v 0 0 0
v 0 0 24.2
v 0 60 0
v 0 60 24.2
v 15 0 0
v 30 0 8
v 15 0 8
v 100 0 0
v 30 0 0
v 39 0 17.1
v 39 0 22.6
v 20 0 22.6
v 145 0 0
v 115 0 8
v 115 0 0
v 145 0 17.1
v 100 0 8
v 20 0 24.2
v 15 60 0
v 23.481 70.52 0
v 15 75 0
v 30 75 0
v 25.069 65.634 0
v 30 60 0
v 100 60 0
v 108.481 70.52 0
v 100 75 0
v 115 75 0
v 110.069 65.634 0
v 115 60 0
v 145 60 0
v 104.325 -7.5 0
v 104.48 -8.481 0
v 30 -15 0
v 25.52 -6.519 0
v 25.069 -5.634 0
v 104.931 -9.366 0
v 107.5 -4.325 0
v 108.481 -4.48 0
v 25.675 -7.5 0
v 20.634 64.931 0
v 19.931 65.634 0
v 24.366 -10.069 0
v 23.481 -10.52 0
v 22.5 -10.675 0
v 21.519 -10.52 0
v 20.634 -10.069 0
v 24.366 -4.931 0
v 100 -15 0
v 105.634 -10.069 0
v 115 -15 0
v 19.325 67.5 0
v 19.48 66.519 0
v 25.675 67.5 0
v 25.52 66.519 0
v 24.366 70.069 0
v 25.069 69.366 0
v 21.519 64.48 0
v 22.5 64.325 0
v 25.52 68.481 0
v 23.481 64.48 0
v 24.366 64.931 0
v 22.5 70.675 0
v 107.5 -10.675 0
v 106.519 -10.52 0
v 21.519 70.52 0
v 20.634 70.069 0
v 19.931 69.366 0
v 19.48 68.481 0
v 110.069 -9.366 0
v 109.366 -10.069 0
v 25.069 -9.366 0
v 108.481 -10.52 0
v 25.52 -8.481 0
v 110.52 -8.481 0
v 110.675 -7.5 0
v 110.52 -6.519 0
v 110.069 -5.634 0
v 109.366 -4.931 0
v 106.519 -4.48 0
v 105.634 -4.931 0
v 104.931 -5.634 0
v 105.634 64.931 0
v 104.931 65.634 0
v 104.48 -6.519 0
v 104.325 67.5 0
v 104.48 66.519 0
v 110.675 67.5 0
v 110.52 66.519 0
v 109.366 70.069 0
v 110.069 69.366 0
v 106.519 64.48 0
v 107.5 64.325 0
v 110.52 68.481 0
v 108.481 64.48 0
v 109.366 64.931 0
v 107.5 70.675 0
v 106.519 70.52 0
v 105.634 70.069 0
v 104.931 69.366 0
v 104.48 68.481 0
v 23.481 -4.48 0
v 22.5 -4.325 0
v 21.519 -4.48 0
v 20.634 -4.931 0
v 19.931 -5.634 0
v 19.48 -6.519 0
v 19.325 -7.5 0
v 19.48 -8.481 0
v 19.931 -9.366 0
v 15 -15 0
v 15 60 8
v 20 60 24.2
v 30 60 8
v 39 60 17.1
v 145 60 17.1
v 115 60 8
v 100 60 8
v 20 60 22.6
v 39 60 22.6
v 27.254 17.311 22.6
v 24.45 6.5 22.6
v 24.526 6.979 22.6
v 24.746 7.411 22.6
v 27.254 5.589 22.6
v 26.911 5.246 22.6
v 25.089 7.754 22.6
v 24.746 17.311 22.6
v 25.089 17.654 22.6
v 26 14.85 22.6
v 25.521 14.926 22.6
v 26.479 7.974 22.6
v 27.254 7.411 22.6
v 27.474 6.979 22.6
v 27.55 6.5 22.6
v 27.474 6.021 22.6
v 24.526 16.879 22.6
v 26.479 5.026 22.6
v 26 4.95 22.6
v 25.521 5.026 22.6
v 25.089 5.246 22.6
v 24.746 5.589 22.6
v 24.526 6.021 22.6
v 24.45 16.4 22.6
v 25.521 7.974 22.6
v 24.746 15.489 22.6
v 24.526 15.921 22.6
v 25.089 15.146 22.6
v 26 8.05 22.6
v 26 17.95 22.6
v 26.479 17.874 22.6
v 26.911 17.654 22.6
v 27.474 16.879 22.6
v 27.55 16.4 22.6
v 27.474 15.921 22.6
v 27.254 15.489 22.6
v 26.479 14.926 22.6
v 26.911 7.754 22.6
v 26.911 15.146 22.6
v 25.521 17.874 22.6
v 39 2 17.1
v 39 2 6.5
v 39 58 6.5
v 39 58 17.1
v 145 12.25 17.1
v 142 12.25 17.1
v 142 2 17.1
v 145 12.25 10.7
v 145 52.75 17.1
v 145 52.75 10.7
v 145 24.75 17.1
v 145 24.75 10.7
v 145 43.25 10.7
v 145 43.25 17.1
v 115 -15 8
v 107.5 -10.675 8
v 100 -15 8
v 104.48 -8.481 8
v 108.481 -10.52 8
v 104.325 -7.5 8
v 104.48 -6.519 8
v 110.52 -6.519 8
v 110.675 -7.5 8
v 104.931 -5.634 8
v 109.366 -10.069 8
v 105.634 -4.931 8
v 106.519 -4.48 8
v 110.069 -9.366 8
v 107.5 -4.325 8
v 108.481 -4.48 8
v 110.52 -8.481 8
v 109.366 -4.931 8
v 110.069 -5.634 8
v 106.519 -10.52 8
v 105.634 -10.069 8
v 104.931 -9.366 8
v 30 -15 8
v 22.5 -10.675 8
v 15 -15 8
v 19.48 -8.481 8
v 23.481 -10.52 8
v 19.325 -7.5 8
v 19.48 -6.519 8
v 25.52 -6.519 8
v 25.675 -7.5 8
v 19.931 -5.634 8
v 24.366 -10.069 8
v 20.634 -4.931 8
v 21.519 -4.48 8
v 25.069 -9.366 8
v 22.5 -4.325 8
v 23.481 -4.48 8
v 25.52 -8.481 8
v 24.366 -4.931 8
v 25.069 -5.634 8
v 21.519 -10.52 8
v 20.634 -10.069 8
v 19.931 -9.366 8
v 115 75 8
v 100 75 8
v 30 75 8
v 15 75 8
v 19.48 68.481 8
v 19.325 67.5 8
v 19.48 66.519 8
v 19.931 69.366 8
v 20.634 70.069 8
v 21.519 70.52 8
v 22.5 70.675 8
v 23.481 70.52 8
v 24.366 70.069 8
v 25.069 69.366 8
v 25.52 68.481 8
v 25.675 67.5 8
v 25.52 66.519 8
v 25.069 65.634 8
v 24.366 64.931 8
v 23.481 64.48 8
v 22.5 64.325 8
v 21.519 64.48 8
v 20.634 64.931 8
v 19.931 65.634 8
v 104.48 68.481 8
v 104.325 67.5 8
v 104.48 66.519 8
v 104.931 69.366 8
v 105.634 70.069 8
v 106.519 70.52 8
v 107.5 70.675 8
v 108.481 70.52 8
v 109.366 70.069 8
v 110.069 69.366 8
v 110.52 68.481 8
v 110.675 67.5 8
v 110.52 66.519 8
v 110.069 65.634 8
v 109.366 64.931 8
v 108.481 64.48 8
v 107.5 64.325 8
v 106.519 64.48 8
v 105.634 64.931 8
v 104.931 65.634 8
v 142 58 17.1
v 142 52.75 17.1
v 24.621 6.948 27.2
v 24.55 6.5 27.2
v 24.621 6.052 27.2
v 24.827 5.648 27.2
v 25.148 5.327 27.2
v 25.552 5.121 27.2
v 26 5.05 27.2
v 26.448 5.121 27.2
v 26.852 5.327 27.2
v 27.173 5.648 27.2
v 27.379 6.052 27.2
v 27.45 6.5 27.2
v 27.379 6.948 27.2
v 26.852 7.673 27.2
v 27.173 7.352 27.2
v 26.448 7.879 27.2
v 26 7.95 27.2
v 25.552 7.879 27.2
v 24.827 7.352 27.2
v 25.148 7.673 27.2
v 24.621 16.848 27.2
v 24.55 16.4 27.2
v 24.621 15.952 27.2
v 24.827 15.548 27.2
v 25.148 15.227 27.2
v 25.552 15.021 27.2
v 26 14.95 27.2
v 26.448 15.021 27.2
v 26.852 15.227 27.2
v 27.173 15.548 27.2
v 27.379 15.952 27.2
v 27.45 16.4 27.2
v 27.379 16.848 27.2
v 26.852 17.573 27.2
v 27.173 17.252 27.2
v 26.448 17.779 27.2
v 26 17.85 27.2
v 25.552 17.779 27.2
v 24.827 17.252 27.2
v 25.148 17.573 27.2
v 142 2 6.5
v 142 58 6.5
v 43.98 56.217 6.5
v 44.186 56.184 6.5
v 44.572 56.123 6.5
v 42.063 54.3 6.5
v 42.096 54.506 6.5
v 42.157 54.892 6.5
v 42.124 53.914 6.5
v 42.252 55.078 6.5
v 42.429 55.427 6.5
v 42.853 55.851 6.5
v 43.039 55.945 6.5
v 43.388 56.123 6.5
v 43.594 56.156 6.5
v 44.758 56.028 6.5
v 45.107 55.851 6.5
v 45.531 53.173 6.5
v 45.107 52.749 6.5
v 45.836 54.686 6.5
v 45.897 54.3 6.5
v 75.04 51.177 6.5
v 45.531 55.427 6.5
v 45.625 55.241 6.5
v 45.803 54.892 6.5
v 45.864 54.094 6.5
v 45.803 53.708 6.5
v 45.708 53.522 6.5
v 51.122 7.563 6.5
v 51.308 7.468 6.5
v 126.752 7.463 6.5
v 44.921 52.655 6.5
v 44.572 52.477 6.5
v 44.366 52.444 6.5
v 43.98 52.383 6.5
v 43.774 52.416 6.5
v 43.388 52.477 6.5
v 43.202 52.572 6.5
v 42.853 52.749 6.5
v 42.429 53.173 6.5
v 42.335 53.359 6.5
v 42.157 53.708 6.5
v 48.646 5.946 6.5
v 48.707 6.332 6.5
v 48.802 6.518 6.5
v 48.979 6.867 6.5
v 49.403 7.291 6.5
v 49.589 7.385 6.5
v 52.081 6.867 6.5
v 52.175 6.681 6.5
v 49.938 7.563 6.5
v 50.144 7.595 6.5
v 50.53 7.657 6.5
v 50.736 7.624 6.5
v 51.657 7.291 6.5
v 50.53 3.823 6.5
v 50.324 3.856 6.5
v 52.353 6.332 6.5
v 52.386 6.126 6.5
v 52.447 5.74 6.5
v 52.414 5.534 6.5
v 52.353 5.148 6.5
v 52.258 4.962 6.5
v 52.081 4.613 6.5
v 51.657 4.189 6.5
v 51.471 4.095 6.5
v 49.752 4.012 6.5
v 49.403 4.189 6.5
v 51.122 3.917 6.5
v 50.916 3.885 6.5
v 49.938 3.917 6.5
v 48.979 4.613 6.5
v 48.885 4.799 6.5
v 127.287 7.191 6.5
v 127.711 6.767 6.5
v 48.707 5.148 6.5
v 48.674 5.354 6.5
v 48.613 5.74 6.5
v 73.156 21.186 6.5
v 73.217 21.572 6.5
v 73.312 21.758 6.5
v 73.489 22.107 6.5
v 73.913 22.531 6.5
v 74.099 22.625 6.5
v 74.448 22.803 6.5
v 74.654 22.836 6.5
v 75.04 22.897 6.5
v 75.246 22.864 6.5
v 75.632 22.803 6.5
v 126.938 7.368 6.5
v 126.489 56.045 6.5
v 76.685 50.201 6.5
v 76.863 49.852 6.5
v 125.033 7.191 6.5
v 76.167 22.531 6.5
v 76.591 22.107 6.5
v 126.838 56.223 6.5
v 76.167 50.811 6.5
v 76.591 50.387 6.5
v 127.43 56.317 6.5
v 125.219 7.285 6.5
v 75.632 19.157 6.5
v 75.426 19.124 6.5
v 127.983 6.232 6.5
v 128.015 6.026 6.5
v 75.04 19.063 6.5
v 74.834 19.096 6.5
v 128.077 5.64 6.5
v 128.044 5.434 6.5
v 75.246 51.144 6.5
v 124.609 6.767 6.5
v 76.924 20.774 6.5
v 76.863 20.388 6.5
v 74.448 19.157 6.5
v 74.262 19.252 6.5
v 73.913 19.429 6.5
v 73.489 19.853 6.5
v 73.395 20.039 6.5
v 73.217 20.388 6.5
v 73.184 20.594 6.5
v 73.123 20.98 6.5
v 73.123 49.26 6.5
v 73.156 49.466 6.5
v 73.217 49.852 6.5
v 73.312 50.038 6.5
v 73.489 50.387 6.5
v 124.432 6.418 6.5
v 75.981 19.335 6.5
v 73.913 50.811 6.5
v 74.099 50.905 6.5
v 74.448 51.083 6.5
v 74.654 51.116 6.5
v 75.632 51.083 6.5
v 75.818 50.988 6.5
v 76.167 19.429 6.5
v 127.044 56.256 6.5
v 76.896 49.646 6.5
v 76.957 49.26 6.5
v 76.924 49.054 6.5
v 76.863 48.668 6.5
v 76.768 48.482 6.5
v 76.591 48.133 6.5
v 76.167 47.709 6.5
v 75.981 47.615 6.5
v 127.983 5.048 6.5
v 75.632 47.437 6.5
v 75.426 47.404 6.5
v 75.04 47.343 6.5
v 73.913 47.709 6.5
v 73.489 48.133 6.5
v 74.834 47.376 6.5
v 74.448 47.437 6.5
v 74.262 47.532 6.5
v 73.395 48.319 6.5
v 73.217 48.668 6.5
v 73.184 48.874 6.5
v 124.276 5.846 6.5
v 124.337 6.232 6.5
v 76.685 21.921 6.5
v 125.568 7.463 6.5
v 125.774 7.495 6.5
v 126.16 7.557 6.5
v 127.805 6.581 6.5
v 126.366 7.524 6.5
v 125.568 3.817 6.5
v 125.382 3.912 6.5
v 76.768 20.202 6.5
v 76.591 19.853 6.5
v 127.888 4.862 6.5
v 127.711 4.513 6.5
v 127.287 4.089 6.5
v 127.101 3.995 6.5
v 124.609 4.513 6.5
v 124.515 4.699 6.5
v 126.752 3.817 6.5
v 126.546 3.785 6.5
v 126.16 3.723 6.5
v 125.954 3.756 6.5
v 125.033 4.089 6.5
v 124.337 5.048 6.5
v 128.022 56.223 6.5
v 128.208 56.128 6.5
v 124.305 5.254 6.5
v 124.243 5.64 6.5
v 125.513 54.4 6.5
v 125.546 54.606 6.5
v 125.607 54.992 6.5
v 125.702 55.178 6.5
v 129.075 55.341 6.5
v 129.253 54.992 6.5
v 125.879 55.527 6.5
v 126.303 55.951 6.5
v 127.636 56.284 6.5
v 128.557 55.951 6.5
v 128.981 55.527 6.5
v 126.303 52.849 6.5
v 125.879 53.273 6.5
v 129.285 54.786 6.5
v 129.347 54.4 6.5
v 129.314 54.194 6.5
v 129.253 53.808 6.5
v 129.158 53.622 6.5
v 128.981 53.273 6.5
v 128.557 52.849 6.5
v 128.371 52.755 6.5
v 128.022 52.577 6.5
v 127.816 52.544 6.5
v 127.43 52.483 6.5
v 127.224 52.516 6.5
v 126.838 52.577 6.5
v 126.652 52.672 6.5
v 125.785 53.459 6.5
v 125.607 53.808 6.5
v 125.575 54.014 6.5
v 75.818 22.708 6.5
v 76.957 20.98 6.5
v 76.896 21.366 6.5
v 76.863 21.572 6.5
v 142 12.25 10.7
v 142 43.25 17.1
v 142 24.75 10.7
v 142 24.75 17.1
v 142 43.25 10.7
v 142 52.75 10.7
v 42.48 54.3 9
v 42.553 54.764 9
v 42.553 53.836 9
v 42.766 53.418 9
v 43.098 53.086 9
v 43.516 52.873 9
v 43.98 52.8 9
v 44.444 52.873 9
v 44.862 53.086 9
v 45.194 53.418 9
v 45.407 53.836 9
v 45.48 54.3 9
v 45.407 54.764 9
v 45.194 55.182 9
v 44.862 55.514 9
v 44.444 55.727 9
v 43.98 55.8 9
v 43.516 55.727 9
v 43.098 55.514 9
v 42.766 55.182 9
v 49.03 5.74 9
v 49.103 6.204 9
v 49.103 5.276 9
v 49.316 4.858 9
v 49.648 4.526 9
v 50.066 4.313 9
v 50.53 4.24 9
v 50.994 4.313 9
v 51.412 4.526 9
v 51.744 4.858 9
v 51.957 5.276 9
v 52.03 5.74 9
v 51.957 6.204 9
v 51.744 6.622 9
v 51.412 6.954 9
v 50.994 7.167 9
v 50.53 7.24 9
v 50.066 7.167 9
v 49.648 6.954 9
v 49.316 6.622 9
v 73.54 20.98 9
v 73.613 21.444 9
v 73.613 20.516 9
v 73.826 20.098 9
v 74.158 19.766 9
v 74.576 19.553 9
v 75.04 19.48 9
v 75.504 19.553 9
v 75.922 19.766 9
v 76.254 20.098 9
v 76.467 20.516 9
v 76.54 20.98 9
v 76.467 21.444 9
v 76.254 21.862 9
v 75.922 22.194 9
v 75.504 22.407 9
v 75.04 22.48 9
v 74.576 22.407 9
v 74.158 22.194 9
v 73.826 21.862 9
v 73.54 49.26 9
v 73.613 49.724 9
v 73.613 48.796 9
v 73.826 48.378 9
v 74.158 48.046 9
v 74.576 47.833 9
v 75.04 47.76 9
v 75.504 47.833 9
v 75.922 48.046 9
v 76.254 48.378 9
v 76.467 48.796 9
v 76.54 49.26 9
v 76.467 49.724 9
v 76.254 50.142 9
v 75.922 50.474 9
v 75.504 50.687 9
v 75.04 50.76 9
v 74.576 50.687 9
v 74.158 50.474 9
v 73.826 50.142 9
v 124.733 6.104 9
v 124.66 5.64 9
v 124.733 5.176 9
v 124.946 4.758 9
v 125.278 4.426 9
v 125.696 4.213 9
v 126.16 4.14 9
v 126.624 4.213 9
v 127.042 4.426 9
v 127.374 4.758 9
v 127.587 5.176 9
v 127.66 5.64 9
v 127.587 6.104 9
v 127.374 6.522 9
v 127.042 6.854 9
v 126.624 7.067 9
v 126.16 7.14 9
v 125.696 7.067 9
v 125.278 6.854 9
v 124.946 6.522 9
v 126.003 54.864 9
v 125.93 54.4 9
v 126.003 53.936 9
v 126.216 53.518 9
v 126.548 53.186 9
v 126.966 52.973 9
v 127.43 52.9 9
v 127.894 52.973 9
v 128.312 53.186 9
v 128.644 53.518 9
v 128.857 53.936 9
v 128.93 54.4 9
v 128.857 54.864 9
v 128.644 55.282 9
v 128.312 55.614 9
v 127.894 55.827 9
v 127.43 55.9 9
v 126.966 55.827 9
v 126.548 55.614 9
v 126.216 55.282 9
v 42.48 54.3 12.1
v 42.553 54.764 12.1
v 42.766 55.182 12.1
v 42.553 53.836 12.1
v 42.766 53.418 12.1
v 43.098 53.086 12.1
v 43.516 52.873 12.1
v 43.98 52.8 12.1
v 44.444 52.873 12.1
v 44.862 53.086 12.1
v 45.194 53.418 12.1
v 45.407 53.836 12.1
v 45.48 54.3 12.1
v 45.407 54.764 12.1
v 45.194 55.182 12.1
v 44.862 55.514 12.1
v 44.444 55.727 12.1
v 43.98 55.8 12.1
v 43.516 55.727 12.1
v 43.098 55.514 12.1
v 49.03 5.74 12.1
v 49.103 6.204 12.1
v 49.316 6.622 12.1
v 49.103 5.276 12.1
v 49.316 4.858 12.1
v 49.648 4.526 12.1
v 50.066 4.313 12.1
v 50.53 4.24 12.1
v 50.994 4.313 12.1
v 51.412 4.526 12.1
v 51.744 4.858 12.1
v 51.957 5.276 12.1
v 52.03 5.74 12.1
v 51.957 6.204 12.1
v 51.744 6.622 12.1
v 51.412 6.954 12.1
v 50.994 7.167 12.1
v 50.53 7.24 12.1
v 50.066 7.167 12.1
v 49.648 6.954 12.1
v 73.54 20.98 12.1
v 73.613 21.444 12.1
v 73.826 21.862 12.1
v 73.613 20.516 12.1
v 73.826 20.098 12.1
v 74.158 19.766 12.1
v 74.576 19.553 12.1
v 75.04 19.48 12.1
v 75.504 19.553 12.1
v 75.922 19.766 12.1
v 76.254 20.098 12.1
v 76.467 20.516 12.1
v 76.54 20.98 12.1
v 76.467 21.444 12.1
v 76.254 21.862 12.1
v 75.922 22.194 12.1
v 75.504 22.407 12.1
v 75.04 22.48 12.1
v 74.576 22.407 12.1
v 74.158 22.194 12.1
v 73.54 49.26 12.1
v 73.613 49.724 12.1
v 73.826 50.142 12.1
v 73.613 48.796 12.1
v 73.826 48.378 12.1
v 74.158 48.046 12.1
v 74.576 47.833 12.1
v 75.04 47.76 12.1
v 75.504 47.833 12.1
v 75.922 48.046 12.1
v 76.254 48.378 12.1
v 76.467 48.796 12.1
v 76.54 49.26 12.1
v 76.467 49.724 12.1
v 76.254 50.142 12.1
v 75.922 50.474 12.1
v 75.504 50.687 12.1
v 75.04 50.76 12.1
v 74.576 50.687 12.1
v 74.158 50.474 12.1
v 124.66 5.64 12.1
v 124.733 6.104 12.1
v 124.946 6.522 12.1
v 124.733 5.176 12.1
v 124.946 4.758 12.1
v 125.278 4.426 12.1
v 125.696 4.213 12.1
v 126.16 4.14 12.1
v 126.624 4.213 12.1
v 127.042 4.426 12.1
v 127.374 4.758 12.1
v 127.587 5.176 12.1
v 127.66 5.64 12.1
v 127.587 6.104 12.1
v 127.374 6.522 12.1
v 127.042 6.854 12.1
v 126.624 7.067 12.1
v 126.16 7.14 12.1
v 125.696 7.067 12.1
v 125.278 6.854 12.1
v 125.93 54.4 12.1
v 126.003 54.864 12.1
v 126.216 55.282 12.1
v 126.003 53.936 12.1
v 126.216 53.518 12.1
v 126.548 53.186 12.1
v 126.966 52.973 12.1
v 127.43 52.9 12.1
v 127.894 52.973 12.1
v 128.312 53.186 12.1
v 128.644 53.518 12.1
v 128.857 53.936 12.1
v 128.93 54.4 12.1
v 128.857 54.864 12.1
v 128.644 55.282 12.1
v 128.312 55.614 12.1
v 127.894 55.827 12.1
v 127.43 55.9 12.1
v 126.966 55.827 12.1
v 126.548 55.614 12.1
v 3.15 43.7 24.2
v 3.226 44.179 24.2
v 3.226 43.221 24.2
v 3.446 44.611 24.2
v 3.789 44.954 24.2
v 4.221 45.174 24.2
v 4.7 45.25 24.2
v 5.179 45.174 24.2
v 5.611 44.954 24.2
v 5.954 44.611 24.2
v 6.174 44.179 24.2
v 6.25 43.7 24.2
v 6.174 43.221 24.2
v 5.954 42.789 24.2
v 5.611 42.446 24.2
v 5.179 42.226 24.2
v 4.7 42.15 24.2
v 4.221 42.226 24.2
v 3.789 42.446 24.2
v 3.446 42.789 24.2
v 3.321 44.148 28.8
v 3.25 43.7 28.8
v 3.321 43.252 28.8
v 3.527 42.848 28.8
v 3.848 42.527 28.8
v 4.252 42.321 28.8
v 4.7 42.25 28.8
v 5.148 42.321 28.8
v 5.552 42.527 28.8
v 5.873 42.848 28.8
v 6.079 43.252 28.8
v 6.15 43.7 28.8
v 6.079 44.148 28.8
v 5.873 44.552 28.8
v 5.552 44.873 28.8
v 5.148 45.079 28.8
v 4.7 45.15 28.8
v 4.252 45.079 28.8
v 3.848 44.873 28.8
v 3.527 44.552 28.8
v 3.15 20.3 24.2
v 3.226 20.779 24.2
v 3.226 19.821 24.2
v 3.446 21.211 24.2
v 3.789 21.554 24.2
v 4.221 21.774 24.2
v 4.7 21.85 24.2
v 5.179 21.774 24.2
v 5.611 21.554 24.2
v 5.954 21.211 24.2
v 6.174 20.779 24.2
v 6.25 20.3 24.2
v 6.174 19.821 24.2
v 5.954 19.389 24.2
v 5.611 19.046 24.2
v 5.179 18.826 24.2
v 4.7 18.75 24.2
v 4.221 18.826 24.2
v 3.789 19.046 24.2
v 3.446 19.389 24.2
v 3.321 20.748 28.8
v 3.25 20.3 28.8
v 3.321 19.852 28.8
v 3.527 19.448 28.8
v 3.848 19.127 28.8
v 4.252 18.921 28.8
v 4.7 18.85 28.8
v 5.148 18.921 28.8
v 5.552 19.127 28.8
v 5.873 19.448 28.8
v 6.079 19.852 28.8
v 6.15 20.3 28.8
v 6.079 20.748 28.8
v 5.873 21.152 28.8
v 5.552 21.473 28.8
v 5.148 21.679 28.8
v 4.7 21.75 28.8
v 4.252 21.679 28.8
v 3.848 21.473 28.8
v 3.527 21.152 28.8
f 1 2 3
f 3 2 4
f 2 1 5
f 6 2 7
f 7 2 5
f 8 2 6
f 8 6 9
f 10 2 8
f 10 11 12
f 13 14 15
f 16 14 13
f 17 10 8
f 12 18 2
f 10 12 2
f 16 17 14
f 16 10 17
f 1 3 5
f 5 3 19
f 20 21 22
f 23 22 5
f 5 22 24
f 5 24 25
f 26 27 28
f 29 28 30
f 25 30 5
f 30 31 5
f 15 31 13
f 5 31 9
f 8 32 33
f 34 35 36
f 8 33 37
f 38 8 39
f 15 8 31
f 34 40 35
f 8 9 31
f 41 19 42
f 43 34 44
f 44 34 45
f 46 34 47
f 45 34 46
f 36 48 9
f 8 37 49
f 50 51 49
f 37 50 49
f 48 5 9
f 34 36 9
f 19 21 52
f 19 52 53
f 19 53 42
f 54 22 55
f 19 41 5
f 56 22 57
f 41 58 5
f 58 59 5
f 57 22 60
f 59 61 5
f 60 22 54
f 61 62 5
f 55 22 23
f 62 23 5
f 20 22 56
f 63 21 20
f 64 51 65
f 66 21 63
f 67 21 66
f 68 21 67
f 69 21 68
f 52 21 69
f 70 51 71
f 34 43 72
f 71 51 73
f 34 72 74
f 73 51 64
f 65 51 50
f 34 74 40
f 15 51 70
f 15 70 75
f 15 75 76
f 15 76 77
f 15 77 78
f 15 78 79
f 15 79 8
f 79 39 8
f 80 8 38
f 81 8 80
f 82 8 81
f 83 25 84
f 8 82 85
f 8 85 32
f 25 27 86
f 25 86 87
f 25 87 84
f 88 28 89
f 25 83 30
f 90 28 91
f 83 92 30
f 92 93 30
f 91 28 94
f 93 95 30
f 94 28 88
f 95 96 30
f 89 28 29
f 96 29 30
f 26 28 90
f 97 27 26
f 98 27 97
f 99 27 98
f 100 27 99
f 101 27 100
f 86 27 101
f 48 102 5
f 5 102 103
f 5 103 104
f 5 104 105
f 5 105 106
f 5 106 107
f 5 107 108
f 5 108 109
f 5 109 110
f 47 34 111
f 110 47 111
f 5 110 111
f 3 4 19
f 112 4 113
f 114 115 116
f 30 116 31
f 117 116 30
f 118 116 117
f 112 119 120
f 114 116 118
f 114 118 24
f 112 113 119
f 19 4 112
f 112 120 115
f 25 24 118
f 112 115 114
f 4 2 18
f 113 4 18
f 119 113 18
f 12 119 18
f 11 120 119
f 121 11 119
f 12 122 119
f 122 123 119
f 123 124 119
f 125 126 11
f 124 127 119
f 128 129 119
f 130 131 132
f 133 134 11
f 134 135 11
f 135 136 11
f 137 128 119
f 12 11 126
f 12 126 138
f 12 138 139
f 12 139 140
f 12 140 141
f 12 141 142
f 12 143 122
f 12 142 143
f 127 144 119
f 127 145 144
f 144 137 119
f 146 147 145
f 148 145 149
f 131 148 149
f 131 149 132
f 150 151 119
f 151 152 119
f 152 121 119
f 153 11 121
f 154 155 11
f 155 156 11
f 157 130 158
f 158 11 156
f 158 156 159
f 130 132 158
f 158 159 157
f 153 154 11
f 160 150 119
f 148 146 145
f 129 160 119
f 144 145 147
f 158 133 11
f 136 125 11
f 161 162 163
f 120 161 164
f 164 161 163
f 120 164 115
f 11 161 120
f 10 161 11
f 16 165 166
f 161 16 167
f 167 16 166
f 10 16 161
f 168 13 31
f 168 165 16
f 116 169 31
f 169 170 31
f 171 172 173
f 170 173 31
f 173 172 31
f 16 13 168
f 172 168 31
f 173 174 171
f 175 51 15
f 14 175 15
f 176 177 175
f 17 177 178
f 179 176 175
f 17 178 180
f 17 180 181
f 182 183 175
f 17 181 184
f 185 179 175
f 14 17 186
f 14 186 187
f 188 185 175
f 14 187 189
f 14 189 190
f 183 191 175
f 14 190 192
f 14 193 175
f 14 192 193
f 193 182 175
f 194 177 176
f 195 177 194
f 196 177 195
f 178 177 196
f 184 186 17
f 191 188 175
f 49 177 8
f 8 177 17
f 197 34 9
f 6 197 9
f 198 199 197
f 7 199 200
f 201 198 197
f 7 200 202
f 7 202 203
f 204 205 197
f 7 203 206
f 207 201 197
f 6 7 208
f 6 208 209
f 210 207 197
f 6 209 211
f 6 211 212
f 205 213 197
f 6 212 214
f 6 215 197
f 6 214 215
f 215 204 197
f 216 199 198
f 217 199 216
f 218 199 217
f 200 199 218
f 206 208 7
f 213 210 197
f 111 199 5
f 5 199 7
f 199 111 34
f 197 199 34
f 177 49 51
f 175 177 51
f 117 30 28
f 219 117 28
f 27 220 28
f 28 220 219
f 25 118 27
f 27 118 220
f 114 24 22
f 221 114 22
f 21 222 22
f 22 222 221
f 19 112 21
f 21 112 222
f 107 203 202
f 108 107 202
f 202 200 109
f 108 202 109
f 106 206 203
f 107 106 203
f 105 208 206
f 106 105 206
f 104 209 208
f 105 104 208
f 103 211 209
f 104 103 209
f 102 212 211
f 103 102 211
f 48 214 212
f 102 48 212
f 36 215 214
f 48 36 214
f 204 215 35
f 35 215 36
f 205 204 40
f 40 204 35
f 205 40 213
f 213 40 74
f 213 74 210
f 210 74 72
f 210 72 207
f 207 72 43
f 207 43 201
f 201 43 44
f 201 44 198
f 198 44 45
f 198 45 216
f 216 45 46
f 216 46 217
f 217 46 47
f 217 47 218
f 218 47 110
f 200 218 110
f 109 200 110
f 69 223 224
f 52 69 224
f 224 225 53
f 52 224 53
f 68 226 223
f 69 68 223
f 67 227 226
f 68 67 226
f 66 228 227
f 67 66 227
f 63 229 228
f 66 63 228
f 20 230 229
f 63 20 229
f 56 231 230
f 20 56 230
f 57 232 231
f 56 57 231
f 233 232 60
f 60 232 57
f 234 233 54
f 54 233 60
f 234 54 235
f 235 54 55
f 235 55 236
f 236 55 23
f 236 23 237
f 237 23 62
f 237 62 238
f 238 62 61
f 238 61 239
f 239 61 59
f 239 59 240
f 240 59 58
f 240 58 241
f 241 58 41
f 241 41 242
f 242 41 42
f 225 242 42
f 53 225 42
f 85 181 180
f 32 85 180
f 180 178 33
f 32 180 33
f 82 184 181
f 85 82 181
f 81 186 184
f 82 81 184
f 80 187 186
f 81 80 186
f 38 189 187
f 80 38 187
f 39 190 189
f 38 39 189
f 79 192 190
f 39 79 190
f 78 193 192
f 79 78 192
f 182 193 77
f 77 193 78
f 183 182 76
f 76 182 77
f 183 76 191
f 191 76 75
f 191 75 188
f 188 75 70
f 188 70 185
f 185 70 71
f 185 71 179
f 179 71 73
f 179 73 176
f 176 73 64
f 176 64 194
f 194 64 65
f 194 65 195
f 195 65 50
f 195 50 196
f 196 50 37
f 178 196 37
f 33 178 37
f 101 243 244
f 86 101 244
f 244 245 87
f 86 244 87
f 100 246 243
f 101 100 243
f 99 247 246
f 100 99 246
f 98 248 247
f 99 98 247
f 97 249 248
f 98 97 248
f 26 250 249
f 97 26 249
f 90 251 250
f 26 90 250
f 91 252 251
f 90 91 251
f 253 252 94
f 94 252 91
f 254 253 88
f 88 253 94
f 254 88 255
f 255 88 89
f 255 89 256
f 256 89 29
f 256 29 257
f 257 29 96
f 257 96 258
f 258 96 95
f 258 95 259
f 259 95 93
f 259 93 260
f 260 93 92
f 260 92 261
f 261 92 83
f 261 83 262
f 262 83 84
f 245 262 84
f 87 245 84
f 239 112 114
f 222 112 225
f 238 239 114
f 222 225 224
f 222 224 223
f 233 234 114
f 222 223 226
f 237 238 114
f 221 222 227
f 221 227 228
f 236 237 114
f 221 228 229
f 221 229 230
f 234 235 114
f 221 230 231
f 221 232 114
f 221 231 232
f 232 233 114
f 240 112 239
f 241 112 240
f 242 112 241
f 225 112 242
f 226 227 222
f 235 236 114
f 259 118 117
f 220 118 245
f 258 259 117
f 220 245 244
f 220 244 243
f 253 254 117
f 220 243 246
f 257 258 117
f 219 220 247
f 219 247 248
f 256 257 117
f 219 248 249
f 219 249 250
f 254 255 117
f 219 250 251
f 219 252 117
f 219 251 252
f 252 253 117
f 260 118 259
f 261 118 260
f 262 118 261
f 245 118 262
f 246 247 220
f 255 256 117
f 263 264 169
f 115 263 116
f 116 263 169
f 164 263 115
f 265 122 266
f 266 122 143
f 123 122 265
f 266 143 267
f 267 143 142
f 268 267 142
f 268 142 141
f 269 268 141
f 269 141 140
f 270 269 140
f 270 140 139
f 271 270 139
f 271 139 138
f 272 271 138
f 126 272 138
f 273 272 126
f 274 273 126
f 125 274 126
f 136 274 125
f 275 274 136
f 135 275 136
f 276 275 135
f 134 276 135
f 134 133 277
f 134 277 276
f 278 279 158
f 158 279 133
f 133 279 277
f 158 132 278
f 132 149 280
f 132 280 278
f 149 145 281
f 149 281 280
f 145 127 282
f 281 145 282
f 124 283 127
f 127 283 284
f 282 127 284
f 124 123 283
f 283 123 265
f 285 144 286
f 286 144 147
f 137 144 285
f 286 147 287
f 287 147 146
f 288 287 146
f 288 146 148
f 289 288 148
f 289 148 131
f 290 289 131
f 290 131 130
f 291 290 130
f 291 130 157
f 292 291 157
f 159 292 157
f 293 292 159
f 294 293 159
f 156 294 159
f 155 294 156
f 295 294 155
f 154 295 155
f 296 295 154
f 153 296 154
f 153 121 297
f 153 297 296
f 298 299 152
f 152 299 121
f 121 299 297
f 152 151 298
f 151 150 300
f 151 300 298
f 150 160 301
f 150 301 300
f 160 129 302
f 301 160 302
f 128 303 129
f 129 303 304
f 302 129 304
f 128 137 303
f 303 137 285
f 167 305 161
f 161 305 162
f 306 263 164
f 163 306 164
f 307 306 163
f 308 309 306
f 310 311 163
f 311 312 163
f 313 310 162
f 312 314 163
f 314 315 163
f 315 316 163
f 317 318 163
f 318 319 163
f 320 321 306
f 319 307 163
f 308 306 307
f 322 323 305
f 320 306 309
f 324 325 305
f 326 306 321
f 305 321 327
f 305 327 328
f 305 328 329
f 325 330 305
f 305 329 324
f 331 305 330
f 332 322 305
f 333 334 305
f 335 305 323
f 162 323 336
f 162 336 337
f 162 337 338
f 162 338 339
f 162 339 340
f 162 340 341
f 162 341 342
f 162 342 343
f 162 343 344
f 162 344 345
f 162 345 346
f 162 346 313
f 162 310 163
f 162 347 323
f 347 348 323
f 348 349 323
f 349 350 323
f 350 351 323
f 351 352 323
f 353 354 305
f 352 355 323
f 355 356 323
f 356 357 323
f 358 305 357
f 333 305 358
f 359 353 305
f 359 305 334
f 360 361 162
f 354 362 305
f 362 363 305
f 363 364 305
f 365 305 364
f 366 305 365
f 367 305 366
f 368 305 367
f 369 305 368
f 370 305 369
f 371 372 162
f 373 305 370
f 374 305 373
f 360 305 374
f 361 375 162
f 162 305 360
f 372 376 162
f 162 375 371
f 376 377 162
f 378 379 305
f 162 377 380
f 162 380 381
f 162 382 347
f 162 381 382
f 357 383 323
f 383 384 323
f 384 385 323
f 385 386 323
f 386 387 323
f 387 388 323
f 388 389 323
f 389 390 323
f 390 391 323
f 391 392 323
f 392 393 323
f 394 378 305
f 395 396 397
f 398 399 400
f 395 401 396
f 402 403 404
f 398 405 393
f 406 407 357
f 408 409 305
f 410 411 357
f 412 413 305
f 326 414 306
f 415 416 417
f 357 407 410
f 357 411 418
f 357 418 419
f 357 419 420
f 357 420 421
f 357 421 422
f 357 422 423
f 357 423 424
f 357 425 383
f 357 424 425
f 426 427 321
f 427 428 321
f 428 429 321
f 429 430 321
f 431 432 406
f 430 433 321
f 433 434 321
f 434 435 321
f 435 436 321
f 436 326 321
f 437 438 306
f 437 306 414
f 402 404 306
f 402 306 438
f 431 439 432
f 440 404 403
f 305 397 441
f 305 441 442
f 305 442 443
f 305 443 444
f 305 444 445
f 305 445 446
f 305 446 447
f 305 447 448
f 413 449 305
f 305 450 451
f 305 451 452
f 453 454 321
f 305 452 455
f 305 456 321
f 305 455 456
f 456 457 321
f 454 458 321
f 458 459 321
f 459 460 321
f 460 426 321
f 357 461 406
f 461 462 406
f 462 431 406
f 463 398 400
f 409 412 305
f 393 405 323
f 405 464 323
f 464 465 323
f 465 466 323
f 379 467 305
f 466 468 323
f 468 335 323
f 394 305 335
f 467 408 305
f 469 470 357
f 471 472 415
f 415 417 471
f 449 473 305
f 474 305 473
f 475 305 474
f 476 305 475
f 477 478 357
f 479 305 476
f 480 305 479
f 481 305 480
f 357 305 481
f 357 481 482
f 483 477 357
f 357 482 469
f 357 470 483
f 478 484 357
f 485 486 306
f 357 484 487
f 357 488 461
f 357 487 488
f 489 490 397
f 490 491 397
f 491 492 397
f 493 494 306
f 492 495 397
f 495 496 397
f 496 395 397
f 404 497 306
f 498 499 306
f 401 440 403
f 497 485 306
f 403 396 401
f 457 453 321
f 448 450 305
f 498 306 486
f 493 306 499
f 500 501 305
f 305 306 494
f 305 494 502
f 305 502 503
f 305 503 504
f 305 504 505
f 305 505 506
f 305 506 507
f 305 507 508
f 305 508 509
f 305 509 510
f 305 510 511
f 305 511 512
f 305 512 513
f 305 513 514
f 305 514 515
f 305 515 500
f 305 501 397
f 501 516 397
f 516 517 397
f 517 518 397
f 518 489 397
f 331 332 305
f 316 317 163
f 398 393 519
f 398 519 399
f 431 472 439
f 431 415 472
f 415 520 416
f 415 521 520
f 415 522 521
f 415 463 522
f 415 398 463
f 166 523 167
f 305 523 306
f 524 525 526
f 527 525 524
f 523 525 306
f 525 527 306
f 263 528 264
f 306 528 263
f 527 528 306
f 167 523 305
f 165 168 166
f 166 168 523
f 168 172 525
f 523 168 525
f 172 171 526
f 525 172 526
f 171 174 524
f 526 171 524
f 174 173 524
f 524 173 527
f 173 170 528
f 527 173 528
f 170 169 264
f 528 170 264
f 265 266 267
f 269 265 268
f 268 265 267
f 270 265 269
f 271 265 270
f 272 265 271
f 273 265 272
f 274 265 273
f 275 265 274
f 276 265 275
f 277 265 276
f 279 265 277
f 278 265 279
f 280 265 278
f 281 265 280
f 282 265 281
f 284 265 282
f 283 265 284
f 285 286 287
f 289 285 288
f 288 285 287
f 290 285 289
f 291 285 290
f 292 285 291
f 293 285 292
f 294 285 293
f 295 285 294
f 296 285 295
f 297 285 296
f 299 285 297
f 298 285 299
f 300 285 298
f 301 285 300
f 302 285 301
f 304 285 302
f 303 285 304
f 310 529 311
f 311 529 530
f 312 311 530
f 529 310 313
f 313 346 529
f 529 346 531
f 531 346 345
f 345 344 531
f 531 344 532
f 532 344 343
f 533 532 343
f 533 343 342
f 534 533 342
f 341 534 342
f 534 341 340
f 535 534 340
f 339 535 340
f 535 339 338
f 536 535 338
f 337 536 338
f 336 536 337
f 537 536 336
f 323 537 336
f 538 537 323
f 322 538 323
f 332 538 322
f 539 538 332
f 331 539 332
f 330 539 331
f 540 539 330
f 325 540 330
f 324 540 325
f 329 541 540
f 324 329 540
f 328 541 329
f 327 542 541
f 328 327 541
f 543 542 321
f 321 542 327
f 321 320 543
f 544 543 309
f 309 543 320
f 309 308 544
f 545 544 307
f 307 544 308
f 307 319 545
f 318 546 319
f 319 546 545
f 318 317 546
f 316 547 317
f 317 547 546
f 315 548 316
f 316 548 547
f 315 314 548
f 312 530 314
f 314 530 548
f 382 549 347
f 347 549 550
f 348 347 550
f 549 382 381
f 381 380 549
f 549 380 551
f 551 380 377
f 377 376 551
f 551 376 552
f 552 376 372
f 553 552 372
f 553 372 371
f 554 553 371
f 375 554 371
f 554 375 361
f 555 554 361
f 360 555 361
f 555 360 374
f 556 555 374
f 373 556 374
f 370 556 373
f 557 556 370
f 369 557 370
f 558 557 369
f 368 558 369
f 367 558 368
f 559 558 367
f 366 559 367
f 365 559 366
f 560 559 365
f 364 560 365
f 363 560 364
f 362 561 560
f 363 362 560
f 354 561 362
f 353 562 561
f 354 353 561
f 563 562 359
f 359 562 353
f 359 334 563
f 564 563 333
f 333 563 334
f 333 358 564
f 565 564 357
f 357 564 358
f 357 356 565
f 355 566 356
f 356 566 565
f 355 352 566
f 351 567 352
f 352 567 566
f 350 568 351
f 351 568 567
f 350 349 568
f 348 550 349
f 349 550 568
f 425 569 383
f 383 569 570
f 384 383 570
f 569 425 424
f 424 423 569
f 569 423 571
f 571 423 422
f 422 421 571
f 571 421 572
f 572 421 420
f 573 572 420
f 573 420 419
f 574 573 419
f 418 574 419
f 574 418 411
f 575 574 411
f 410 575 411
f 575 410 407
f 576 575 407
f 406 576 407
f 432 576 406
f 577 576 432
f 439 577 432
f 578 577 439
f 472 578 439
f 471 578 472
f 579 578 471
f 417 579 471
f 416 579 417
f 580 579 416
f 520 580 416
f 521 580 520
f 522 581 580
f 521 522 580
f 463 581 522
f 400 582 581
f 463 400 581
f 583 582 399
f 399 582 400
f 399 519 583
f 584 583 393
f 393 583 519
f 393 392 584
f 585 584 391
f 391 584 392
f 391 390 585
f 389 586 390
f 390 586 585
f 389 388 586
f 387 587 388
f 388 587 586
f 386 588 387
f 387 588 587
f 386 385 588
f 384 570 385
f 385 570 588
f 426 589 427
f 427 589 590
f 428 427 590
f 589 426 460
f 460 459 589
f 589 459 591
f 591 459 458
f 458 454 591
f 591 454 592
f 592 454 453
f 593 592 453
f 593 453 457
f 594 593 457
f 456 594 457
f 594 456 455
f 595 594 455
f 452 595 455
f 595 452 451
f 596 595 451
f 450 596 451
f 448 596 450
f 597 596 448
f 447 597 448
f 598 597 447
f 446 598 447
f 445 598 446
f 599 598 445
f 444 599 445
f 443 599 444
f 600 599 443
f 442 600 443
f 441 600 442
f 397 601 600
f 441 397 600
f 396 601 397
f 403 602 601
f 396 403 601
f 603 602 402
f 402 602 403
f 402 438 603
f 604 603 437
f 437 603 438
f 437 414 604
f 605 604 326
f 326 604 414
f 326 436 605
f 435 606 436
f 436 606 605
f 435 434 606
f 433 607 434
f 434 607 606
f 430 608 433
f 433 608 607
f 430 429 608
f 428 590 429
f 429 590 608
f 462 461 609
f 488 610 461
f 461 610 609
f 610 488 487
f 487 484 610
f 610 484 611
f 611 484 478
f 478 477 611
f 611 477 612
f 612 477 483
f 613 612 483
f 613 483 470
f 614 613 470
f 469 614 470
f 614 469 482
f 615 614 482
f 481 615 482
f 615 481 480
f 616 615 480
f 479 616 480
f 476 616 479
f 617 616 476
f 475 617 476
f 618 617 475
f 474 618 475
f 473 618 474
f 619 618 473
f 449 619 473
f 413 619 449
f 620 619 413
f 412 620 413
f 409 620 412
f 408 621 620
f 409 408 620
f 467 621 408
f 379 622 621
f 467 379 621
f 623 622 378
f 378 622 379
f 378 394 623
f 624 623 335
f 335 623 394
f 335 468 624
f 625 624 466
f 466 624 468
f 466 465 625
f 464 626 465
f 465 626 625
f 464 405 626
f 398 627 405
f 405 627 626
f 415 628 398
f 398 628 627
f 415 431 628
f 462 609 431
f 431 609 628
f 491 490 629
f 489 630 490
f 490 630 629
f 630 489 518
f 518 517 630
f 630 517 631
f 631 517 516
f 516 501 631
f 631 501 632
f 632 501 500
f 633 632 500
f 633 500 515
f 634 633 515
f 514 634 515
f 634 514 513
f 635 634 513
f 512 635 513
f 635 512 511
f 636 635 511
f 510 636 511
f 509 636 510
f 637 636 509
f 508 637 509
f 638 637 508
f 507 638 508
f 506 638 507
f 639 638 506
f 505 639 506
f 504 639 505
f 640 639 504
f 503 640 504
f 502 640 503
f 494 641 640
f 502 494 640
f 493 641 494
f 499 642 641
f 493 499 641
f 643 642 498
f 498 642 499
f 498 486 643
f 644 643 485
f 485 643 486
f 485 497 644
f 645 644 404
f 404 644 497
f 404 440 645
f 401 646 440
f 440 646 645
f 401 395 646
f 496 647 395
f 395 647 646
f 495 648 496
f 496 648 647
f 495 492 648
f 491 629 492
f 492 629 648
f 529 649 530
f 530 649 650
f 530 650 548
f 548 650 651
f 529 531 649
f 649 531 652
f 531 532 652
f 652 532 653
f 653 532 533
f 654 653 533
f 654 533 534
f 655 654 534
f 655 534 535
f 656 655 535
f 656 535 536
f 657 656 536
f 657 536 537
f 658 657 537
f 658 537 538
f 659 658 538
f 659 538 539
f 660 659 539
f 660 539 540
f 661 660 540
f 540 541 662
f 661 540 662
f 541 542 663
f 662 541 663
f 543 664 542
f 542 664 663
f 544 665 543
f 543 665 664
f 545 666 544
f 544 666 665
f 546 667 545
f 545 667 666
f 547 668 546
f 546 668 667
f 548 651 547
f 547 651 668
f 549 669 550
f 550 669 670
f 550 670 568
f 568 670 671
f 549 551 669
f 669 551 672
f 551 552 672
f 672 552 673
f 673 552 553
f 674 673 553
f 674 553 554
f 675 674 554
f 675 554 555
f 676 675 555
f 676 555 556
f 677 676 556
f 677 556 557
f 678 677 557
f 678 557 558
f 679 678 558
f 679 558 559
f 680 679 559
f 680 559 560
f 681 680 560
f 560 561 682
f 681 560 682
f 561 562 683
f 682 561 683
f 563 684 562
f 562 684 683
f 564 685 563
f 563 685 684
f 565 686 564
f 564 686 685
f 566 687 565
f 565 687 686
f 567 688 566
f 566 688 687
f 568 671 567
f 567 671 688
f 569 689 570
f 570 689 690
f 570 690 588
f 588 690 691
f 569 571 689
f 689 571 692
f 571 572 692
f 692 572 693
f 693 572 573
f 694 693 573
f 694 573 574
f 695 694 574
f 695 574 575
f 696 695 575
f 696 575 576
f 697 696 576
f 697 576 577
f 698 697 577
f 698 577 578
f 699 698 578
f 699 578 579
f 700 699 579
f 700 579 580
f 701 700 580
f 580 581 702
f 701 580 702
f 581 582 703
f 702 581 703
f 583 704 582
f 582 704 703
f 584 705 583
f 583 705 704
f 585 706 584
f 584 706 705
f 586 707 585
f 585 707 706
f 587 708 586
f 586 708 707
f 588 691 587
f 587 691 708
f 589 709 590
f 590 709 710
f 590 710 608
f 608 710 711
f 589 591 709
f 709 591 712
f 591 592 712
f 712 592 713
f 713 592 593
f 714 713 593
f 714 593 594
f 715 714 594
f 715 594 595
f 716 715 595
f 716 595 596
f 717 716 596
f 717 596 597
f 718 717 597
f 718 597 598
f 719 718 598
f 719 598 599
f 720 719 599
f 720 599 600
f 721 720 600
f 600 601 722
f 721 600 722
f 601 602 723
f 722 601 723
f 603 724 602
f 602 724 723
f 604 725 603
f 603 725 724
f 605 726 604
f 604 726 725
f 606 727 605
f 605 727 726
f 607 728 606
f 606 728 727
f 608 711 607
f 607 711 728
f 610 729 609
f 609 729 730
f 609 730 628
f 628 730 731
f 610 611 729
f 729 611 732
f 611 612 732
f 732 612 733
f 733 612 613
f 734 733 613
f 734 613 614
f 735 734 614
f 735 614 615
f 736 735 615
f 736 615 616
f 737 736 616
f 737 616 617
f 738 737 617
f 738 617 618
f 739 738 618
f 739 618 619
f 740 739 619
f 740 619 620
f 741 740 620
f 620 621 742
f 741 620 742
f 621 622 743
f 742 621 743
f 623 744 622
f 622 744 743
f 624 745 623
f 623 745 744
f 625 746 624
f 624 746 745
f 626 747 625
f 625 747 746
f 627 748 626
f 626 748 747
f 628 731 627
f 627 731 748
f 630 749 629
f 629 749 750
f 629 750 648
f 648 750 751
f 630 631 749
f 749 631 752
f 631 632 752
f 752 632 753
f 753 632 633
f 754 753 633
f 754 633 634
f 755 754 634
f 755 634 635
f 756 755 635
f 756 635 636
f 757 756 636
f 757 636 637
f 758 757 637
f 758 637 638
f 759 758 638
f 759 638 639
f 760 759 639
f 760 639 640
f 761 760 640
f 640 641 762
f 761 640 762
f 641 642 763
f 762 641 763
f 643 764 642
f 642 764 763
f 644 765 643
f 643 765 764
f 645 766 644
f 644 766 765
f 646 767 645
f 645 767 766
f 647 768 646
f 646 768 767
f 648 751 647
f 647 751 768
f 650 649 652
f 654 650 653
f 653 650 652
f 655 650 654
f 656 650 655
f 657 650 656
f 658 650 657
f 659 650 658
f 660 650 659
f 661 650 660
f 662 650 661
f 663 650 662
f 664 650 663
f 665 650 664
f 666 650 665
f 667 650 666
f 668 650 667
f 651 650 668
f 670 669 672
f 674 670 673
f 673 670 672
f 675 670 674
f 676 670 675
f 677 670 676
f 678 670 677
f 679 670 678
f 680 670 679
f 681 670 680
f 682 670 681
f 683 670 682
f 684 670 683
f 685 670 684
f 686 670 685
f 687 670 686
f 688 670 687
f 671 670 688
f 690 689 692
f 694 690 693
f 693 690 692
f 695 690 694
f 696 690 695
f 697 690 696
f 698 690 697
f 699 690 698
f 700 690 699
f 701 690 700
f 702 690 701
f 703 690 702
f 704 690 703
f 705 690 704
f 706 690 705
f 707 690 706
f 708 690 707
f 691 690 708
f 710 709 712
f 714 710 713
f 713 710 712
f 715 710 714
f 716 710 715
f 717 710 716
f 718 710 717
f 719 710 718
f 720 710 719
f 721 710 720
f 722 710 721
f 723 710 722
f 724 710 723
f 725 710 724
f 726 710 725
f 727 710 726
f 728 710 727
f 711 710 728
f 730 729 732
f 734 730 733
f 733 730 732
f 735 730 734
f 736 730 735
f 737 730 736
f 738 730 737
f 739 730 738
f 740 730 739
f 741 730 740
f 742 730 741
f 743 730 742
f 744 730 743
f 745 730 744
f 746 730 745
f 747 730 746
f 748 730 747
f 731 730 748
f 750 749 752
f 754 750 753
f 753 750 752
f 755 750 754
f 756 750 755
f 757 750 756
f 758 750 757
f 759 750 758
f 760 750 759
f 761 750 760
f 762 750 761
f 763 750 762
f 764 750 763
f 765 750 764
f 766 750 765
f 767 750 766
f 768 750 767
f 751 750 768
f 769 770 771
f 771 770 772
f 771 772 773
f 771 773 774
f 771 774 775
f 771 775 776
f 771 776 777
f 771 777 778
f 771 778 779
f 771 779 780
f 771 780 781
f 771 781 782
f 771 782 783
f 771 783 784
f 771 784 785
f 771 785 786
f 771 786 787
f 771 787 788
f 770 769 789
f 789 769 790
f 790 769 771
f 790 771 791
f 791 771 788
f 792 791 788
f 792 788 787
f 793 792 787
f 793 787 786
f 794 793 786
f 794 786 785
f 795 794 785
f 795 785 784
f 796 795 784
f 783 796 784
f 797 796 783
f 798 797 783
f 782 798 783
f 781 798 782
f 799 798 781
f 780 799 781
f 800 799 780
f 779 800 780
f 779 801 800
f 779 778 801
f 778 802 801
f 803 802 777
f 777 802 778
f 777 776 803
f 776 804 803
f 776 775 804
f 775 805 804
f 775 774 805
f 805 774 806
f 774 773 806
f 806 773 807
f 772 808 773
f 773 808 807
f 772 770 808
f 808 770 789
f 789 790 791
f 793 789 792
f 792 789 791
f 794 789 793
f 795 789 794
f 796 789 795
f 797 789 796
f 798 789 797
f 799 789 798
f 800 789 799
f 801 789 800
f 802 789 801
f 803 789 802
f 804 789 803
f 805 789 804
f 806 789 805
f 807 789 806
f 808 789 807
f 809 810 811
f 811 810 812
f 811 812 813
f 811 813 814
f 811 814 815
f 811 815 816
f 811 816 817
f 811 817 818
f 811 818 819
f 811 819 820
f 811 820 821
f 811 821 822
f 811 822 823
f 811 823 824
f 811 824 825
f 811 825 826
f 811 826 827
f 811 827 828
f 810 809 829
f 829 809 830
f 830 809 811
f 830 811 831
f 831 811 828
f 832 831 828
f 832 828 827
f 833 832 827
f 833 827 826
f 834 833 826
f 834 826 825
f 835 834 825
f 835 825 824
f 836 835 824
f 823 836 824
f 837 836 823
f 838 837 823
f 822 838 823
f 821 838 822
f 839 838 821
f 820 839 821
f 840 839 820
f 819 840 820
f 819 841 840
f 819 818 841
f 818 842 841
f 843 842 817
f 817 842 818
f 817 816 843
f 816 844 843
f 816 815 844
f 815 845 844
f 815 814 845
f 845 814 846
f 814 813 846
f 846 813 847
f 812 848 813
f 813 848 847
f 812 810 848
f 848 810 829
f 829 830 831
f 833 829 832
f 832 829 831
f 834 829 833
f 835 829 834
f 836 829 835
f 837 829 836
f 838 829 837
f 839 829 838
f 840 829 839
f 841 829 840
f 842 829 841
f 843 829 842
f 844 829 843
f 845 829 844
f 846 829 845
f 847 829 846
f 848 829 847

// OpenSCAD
$fn = 20;




length = 145; 
height = 22.6+1.6;
width = 60;
cutout_length = 106;
difference(){
	cube([length, width, height]);
	translate([length-cutout_length,-1,height-7.1])cube([cutout_length+1,1000,40]);
	translate([20,-1,height-1.6])cube([100,65,50]);
	translate([length-5,12.25,15.5-4.8 ])cube([10,12.5,25]); // usb cut out
	translate([length-5,43.25,15.5-4.8 ])cube([10,9.5,25]); //power cut out
	translate([length-cutout_length,2,15.5-9])cube([105-2,width-4,50]); // bottom cutout
}

module foot(){
	
	difference(){
		cube([15,15,8]);
		translate([7.5,7.5,-0.25])cylinder(d=6.35,8.5);
	}
}

module peg(){
	//cylinder(d=5, h=2.75);
	translate([0,0,])cylinder(d1=4.5, d2=3, h=4.5);
	translate([0,0,4.5])cylinder(d=3,h=3.1);
}

translate([length,0,4.5]){
	translate([-18.84,5.64])peg();
	translate([-17.57,54.4])peg();
	translate([-69.96, 49.26])peg();
	translate([-69.96, 20.98])peg();
	translate([-101.02, 54.3])peg();
	translate([-94.47, 5.74])peg();
}



//accelerometer pins
translate([4.7,width-16.3,height])cylinder(d1=3.1,,d2=2.9, h=4.6);
translate([4.7,width-39.7,height])cylinder(d1=3.1, d2=2.9, h=4.6);

//temp pins
translate([26,6.5,height-1.6])cylinder(d1=3.1,,d2=2.9, h=4.6);
translate([26,16.4,height-1.6])cylinder(d1=3.1,,d2=2.9, h=4.6);

//feet
translate([15,-15,0 ])foot(); // foot 1 [-20,-70.5,50]
translate([100,-15,0 ])foot(); // foot 1 [-20,-70.5,50]
translate([15,60,0 ])foot(); // foot 1 [-20,-70.5,50]
translate([100,60,0 ])foot(); // foot 1 [-20,-70.5,50
